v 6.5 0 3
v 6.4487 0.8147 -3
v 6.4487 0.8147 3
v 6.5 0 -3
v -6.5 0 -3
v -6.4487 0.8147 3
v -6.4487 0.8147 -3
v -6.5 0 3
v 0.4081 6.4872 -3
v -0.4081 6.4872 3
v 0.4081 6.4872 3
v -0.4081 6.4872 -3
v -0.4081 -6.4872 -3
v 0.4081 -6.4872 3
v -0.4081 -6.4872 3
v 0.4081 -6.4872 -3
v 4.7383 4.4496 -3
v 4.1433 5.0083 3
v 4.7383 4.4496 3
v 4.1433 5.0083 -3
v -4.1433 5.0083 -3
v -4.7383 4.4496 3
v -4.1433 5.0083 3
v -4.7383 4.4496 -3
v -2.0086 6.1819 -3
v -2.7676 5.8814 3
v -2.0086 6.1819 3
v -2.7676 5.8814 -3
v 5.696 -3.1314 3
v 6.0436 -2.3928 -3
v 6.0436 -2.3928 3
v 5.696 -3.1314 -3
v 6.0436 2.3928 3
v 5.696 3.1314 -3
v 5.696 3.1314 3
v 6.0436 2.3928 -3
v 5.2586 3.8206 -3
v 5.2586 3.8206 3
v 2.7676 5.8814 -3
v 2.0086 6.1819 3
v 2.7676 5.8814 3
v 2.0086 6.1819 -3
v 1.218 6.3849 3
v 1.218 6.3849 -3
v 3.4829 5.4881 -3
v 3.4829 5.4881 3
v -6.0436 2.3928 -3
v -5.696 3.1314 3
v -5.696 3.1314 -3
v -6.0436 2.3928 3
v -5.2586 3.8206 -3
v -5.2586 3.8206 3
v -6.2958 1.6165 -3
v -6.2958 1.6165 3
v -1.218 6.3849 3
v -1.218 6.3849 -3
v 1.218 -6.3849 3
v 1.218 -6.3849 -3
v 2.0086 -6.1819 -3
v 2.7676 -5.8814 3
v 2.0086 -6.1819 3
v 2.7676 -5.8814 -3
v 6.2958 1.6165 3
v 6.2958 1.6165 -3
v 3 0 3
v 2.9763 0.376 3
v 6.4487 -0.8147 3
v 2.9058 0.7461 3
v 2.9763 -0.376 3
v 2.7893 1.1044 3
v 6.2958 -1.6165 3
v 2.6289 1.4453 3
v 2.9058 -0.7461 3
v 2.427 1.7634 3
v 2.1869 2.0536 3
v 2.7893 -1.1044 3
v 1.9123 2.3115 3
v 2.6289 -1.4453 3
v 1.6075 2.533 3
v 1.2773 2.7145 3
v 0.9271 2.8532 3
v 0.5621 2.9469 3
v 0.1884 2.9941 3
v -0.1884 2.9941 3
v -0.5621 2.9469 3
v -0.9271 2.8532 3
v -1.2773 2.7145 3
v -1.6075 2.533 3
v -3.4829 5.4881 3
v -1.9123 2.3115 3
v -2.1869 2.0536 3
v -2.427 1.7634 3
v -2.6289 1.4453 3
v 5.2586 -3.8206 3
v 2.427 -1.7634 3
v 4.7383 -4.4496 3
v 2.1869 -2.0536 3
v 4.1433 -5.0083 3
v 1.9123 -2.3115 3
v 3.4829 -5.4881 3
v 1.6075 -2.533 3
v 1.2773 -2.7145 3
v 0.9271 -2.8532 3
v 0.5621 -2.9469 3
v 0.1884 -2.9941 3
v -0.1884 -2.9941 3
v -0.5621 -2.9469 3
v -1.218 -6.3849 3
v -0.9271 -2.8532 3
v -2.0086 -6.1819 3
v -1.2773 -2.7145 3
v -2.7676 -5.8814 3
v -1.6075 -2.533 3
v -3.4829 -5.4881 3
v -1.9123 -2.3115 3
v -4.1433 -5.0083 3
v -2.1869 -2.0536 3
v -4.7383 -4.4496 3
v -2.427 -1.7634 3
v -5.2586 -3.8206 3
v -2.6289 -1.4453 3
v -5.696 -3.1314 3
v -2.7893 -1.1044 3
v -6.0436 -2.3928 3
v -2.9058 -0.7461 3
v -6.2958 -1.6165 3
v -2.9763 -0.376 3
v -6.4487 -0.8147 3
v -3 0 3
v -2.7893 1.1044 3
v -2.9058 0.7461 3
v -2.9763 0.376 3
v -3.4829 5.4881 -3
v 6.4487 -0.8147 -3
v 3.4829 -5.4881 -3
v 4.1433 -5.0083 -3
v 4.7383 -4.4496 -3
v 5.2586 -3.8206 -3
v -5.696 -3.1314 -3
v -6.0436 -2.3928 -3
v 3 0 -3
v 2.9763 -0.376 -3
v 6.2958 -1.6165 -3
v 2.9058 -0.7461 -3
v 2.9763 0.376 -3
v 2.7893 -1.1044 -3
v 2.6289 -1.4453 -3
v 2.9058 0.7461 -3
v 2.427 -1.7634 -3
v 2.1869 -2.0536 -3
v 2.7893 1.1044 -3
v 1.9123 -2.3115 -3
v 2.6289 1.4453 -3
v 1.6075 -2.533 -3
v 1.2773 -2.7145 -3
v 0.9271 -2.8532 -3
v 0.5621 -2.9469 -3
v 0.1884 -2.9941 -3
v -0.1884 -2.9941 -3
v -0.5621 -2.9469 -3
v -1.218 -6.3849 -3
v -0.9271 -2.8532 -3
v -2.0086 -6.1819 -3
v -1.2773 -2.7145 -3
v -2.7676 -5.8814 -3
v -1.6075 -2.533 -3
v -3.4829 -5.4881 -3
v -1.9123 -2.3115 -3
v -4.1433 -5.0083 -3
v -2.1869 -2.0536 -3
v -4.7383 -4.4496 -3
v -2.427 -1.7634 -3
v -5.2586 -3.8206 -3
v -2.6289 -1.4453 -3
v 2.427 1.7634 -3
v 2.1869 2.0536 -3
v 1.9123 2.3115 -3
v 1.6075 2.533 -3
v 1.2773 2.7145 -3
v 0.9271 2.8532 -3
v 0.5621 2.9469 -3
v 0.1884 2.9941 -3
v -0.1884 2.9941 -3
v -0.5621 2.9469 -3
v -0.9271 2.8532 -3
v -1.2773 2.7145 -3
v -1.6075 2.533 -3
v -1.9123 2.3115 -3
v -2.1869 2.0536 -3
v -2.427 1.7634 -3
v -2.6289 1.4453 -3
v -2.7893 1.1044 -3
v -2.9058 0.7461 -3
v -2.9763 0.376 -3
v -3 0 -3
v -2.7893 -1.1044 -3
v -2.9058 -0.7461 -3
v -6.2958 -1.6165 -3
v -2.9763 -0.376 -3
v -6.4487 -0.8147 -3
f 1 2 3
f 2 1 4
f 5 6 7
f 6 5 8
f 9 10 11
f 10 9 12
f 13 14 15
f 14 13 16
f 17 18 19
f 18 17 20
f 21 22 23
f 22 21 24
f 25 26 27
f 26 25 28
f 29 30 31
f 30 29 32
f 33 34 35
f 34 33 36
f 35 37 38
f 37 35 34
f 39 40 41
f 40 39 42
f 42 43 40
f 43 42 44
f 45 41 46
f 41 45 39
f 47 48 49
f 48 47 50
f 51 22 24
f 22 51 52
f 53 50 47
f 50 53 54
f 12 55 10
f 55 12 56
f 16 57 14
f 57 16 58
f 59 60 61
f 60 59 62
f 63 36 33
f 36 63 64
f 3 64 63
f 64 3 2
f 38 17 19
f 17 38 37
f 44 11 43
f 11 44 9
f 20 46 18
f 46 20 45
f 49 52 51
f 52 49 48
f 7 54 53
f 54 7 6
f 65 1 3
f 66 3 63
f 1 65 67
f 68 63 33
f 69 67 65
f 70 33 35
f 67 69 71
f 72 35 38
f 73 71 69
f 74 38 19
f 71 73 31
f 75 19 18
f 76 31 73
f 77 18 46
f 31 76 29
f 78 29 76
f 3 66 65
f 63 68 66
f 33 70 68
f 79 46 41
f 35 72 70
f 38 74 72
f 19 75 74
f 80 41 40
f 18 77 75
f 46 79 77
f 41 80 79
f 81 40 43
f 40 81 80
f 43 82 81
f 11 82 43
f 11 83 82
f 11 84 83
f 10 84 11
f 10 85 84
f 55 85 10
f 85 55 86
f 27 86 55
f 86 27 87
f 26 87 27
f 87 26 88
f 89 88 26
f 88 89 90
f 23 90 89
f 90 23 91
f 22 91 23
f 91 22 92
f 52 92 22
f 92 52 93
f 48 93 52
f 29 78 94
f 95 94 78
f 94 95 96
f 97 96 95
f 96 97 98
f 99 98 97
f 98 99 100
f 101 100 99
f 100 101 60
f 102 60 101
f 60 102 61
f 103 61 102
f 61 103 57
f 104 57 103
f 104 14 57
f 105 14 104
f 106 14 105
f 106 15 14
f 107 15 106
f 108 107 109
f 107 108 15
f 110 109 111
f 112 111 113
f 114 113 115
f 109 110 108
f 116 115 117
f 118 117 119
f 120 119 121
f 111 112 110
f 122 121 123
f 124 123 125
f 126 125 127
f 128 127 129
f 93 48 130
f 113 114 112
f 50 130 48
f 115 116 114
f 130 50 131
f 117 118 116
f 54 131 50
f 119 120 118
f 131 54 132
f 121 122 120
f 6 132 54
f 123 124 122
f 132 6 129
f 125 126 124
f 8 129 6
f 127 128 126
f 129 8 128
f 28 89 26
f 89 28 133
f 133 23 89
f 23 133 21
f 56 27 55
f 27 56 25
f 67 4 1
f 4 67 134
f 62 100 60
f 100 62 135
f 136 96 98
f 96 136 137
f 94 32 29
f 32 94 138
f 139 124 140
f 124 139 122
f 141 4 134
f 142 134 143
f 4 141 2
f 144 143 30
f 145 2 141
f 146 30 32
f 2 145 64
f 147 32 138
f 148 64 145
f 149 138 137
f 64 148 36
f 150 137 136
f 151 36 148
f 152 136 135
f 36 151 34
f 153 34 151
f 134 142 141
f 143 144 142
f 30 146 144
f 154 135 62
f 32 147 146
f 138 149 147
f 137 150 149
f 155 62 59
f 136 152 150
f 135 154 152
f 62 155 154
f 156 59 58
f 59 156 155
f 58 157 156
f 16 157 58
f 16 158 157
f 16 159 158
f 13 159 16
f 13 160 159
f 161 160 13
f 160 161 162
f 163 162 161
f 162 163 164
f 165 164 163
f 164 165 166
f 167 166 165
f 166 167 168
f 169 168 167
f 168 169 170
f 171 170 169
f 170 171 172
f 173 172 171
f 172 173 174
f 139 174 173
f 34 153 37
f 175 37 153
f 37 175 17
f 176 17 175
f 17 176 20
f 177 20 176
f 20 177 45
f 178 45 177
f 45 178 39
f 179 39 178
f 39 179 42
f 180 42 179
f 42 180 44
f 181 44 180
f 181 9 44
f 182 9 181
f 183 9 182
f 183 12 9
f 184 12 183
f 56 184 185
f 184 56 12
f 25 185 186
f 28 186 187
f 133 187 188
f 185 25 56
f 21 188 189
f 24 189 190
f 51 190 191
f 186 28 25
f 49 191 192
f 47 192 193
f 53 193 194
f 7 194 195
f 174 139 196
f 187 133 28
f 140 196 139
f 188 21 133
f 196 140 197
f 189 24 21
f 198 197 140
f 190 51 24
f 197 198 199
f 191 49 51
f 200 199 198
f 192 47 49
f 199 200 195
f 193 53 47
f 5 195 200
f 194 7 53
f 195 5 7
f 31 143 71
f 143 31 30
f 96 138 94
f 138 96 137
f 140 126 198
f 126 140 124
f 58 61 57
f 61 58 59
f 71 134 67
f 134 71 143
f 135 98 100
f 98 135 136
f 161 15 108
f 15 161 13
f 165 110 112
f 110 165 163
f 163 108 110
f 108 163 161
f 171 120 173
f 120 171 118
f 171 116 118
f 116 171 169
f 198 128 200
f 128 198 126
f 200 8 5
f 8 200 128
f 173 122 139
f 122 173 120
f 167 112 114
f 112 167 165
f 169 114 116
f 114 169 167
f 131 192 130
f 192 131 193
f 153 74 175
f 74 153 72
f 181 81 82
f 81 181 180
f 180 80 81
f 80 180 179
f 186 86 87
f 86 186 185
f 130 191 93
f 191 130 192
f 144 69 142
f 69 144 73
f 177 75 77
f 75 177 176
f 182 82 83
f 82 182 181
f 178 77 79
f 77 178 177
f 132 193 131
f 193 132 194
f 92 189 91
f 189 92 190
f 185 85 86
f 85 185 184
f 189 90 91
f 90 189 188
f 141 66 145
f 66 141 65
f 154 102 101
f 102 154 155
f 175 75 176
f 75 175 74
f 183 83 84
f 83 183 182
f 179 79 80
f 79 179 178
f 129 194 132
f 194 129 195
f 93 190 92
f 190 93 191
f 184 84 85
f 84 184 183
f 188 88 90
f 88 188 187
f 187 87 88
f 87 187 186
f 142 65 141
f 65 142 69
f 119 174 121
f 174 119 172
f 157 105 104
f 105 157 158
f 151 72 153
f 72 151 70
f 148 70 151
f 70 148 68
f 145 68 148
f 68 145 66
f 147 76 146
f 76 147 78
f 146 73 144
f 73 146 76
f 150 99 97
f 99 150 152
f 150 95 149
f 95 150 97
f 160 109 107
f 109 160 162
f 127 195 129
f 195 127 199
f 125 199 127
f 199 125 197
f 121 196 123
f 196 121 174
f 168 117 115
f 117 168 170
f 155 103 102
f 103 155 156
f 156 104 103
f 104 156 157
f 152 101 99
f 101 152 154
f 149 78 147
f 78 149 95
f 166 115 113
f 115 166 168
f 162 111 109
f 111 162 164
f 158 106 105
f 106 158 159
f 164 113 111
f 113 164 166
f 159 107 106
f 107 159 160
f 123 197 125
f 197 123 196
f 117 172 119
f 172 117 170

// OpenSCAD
$fn = 50;


difference() {
	union() {
		translate(v = [0, 0, -3.0000000000]) {
			cylinder(h = 6, r = 6.5000000000);
		}
	}
	union() {
		translate(v = [0, 0, -100.0000000000]) {
			cylinder(h = 200, r = 3);
		}
	}
}
